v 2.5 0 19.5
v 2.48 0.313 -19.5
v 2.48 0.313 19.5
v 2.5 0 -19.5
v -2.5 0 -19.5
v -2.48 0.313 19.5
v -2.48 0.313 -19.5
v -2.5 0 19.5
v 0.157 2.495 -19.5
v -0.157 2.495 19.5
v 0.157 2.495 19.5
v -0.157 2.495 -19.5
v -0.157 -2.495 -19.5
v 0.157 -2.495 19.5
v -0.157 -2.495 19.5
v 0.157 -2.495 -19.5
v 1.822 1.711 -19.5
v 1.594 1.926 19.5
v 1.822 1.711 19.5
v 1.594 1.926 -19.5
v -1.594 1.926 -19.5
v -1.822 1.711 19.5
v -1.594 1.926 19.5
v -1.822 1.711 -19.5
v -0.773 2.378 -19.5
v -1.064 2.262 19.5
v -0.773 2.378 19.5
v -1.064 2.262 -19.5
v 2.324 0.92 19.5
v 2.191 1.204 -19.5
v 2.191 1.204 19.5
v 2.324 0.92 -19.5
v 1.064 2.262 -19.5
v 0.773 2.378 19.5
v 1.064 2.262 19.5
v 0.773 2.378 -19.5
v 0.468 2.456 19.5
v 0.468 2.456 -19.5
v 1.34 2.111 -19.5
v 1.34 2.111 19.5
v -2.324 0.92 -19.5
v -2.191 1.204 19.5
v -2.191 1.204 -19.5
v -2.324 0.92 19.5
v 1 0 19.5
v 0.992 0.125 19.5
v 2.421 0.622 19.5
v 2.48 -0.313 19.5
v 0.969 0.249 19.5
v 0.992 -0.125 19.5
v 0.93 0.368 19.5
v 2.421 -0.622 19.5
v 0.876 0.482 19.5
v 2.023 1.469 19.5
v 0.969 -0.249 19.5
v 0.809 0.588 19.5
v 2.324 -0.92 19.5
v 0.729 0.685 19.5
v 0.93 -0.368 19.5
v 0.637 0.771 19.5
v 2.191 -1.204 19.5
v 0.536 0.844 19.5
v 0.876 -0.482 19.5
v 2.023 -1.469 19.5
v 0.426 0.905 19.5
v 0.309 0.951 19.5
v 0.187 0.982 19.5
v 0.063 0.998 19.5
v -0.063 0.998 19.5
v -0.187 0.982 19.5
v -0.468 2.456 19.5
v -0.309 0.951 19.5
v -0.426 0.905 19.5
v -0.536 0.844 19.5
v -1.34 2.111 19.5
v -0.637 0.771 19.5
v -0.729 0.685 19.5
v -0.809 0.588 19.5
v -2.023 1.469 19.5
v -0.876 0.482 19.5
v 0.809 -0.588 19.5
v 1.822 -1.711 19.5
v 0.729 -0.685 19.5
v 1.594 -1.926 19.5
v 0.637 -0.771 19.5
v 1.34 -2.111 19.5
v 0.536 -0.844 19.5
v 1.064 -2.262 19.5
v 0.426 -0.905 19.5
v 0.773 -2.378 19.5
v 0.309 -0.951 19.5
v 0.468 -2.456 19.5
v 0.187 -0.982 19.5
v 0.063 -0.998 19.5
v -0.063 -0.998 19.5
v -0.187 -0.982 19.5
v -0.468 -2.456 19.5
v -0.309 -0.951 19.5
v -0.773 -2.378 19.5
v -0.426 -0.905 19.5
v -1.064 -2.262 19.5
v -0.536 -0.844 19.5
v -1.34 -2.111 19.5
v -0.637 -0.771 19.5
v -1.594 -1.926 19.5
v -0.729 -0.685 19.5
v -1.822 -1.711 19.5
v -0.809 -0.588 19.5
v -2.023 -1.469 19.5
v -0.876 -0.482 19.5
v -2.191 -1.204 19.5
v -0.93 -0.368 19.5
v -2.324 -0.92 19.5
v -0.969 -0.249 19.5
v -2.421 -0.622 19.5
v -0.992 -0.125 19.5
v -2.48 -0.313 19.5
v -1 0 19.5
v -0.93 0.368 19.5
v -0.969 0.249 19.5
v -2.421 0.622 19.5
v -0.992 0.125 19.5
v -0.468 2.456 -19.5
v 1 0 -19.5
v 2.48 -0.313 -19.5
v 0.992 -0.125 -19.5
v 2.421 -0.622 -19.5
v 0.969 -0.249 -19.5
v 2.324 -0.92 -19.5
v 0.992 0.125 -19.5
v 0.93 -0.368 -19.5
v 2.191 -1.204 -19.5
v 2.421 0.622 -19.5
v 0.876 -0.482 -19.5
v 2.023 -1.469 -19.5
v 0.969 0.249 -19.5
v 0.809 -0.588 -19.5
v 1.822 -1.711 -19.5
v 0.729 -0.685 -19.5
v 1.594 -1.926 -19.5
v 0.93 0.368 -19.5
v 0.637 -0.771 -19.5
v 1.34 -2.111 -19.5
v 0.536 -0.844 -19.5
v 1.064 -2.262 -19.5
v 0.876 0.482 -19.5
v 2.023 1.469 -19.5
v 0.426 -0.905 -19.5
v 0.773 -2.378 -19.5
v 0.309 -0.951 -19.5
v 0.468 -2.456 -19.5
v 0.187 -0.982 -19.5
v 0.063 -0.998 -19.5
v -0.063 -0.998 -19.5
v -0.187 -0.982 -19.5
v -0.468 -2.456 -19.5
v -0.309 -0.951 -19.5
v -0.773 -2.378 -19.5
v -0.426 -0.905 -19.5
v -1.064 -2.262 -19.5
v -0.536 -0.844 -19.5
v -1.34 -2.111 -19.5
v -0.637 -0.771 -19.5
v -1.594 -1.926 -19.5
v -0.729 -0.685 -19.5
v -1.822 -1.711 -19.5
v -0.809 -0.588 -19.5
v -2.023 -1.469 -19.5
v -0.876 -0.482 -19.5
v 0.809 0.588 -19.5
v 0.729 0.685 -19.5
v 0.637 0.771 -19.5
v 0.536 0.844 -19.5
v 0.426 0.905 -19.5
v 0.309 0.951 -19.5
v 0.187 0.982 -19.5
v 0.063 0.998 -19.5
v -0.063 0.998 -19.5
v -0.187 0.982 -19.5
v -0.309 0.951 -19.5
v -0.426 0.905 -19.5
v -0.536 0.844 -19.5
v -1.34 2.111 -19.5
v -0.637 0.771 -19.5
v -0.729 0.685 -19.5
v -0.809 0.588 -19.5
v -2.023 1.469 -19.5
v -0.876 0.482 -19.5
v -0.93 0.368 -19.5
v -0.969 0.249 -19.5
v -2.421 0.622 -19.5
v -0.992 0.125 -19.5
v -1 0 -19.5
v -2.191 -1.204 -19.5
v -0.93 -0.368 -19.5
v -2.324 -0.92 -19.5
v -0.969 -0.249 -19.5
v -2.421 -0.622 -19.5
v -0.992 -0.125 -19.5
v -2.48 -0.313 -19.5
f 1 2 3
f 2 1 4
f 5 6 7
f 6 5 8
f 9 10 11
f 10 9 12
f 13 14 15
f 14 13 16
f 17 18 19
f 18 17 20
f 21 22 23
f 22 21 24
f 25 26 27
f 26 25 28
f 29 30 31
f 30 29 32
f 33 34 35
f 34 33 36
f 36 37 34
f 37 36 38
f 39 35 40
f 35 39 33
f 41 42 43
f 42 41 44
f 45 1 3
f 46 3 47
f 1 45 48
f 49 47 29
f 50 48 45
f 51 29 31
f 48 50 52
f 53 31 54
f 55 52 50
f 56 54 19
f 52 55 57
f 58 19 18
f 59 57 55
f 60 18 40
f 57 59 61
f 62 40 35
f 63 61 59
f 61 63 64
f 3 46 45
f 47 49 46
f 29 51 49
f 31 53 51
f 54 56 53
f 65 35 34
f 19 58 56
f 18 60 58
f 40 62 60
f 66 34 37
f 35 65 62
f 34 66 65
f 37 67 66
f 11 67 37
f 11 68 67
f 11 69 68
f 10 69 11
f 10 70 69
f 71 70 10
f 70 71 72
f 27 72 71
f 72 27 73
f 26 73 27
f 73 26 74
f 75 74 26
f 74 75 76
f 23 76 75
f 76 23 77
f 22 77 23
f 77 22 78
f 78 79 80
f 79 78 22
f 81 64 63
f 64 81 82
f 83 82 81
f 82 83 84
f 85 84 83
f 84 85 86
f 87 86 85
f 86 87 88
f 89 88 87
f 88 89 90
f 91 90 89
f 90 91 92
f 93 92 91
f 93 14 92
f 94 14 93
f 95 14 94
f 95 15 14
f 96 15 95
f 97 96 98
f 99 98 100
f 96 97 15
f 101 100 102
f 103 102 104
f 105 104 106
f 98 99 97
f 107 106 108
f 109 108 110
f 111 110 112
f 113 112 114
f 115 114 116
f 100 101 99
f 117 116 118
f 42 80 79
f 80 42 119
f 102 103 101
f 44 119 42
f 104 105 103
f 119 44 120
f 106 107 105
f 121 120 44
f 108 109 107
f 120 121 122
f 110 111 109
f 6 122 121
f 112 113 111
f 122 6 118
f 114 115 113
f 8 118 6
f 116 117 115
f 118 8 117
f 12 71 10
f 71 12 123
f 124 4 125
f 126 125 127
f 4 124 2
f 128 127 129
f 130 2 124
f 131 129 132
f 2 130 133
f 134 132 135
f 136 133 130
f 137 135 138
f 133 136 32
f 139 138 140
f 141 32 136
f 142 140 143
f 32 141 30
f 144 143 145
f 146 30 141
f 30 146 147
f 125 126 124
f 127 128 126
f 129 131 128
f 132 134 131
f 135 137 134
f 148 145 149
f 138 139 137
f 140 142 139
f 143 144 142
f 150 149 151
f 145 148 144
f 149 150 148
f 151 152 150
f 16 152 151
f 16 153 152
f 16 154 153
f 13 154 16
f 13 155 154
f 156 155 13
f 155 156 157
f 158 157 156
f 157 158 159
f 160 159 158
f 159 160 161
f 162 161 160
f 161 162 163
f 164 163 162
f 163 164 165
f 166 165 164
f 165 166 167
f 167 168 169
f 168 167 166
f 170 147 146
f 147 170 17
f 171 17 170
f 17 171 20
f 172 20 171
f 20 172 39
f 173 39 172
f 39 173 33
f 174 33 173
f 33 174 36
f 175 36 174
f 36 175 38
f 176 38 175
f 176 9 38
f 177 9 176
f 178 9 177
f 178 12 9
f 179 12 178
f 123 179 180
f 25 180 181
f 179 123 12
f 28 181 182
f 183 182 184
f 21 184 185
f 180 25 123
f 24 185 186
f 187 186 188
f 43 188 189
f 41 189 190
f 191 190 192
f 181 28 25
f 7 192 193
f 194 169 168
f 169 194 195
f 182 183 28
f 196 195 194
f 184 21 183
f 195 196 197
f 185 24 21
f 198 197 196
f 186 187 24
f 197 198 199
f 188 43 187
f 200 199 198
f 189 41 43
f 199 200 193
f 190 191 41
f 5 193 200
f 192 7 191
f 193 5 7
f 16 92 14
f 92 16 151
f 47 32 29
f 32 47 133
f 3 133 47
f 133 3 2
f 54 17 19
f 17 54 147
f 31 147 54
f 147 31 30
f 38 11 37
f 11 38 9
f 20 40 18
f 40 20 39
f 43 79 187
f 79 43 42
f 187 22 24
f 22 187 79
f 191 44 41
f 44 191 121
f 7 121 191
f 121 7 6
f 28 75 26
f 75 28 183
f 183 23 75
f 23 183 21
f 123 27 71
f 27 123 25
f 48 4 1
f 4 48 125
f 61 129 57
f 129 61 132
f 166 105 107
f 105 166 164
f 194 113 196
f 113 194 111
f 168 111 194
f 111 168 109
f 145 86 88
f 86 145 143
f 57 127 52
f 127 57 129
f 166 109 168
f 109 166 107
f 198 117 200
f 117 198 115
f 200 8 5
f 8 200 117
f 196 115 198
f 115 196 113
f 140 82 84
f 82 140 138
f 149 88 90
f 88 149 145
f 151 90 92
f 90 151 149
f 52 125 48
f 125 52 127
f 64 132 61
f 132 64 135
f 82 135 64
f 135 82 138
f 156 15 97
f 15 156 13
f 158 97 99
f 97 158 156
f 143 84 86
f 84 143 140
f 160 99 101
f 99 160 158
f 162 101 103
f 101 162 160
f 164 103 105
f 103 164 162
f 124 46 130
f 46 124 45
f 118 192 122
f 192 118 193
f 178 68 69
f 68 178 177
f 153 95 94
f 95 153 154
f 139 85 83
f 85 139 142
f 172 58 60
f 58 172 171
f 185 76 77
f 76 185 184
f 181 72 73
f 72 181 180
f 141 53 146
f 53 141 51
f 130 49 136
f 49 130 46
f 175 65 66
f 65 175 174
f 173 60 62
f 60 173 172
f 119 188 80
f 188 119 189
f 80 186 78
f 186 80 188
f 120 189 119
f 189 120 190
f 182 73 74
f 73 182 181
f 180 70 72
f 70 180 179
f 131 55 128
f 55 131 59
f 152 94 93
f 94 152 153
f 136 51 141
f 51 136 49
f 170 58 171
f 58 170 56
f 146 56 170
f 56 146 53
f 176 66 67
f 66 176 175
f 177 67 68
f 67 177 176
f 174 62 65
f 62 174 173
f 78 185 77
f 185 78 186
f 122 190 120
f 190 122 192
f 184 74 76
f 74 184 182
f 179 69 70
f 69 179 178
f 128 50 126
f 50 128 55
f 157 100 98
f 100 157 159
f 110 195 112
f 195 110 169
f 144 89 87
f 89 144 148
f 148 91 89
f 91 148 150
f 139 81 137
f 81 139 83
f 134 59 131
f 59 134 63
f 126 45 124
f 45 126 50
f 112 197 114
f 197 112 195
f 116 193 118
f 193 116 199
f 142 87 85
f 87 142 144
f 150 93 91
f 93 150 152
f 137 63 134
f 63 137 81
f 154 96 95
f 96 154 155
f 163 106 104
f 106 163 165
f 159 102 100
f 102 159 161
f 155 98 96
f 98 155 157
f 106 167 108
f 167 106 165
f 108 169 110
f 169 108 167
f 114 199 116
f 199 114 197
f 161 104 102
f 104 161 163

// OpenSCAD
$fn = 50;


difference() {
	union() {
		translate(v = [0, 0, -19.5000000000]) {
			cylinder(h = 39, r = 2.5000000000);
		}
	}
	union() {
		translate(v = [0, 0, -100.0000000000]) {
			cylinder(h = 200, r = 1.0000000000);
		}
	}
}
